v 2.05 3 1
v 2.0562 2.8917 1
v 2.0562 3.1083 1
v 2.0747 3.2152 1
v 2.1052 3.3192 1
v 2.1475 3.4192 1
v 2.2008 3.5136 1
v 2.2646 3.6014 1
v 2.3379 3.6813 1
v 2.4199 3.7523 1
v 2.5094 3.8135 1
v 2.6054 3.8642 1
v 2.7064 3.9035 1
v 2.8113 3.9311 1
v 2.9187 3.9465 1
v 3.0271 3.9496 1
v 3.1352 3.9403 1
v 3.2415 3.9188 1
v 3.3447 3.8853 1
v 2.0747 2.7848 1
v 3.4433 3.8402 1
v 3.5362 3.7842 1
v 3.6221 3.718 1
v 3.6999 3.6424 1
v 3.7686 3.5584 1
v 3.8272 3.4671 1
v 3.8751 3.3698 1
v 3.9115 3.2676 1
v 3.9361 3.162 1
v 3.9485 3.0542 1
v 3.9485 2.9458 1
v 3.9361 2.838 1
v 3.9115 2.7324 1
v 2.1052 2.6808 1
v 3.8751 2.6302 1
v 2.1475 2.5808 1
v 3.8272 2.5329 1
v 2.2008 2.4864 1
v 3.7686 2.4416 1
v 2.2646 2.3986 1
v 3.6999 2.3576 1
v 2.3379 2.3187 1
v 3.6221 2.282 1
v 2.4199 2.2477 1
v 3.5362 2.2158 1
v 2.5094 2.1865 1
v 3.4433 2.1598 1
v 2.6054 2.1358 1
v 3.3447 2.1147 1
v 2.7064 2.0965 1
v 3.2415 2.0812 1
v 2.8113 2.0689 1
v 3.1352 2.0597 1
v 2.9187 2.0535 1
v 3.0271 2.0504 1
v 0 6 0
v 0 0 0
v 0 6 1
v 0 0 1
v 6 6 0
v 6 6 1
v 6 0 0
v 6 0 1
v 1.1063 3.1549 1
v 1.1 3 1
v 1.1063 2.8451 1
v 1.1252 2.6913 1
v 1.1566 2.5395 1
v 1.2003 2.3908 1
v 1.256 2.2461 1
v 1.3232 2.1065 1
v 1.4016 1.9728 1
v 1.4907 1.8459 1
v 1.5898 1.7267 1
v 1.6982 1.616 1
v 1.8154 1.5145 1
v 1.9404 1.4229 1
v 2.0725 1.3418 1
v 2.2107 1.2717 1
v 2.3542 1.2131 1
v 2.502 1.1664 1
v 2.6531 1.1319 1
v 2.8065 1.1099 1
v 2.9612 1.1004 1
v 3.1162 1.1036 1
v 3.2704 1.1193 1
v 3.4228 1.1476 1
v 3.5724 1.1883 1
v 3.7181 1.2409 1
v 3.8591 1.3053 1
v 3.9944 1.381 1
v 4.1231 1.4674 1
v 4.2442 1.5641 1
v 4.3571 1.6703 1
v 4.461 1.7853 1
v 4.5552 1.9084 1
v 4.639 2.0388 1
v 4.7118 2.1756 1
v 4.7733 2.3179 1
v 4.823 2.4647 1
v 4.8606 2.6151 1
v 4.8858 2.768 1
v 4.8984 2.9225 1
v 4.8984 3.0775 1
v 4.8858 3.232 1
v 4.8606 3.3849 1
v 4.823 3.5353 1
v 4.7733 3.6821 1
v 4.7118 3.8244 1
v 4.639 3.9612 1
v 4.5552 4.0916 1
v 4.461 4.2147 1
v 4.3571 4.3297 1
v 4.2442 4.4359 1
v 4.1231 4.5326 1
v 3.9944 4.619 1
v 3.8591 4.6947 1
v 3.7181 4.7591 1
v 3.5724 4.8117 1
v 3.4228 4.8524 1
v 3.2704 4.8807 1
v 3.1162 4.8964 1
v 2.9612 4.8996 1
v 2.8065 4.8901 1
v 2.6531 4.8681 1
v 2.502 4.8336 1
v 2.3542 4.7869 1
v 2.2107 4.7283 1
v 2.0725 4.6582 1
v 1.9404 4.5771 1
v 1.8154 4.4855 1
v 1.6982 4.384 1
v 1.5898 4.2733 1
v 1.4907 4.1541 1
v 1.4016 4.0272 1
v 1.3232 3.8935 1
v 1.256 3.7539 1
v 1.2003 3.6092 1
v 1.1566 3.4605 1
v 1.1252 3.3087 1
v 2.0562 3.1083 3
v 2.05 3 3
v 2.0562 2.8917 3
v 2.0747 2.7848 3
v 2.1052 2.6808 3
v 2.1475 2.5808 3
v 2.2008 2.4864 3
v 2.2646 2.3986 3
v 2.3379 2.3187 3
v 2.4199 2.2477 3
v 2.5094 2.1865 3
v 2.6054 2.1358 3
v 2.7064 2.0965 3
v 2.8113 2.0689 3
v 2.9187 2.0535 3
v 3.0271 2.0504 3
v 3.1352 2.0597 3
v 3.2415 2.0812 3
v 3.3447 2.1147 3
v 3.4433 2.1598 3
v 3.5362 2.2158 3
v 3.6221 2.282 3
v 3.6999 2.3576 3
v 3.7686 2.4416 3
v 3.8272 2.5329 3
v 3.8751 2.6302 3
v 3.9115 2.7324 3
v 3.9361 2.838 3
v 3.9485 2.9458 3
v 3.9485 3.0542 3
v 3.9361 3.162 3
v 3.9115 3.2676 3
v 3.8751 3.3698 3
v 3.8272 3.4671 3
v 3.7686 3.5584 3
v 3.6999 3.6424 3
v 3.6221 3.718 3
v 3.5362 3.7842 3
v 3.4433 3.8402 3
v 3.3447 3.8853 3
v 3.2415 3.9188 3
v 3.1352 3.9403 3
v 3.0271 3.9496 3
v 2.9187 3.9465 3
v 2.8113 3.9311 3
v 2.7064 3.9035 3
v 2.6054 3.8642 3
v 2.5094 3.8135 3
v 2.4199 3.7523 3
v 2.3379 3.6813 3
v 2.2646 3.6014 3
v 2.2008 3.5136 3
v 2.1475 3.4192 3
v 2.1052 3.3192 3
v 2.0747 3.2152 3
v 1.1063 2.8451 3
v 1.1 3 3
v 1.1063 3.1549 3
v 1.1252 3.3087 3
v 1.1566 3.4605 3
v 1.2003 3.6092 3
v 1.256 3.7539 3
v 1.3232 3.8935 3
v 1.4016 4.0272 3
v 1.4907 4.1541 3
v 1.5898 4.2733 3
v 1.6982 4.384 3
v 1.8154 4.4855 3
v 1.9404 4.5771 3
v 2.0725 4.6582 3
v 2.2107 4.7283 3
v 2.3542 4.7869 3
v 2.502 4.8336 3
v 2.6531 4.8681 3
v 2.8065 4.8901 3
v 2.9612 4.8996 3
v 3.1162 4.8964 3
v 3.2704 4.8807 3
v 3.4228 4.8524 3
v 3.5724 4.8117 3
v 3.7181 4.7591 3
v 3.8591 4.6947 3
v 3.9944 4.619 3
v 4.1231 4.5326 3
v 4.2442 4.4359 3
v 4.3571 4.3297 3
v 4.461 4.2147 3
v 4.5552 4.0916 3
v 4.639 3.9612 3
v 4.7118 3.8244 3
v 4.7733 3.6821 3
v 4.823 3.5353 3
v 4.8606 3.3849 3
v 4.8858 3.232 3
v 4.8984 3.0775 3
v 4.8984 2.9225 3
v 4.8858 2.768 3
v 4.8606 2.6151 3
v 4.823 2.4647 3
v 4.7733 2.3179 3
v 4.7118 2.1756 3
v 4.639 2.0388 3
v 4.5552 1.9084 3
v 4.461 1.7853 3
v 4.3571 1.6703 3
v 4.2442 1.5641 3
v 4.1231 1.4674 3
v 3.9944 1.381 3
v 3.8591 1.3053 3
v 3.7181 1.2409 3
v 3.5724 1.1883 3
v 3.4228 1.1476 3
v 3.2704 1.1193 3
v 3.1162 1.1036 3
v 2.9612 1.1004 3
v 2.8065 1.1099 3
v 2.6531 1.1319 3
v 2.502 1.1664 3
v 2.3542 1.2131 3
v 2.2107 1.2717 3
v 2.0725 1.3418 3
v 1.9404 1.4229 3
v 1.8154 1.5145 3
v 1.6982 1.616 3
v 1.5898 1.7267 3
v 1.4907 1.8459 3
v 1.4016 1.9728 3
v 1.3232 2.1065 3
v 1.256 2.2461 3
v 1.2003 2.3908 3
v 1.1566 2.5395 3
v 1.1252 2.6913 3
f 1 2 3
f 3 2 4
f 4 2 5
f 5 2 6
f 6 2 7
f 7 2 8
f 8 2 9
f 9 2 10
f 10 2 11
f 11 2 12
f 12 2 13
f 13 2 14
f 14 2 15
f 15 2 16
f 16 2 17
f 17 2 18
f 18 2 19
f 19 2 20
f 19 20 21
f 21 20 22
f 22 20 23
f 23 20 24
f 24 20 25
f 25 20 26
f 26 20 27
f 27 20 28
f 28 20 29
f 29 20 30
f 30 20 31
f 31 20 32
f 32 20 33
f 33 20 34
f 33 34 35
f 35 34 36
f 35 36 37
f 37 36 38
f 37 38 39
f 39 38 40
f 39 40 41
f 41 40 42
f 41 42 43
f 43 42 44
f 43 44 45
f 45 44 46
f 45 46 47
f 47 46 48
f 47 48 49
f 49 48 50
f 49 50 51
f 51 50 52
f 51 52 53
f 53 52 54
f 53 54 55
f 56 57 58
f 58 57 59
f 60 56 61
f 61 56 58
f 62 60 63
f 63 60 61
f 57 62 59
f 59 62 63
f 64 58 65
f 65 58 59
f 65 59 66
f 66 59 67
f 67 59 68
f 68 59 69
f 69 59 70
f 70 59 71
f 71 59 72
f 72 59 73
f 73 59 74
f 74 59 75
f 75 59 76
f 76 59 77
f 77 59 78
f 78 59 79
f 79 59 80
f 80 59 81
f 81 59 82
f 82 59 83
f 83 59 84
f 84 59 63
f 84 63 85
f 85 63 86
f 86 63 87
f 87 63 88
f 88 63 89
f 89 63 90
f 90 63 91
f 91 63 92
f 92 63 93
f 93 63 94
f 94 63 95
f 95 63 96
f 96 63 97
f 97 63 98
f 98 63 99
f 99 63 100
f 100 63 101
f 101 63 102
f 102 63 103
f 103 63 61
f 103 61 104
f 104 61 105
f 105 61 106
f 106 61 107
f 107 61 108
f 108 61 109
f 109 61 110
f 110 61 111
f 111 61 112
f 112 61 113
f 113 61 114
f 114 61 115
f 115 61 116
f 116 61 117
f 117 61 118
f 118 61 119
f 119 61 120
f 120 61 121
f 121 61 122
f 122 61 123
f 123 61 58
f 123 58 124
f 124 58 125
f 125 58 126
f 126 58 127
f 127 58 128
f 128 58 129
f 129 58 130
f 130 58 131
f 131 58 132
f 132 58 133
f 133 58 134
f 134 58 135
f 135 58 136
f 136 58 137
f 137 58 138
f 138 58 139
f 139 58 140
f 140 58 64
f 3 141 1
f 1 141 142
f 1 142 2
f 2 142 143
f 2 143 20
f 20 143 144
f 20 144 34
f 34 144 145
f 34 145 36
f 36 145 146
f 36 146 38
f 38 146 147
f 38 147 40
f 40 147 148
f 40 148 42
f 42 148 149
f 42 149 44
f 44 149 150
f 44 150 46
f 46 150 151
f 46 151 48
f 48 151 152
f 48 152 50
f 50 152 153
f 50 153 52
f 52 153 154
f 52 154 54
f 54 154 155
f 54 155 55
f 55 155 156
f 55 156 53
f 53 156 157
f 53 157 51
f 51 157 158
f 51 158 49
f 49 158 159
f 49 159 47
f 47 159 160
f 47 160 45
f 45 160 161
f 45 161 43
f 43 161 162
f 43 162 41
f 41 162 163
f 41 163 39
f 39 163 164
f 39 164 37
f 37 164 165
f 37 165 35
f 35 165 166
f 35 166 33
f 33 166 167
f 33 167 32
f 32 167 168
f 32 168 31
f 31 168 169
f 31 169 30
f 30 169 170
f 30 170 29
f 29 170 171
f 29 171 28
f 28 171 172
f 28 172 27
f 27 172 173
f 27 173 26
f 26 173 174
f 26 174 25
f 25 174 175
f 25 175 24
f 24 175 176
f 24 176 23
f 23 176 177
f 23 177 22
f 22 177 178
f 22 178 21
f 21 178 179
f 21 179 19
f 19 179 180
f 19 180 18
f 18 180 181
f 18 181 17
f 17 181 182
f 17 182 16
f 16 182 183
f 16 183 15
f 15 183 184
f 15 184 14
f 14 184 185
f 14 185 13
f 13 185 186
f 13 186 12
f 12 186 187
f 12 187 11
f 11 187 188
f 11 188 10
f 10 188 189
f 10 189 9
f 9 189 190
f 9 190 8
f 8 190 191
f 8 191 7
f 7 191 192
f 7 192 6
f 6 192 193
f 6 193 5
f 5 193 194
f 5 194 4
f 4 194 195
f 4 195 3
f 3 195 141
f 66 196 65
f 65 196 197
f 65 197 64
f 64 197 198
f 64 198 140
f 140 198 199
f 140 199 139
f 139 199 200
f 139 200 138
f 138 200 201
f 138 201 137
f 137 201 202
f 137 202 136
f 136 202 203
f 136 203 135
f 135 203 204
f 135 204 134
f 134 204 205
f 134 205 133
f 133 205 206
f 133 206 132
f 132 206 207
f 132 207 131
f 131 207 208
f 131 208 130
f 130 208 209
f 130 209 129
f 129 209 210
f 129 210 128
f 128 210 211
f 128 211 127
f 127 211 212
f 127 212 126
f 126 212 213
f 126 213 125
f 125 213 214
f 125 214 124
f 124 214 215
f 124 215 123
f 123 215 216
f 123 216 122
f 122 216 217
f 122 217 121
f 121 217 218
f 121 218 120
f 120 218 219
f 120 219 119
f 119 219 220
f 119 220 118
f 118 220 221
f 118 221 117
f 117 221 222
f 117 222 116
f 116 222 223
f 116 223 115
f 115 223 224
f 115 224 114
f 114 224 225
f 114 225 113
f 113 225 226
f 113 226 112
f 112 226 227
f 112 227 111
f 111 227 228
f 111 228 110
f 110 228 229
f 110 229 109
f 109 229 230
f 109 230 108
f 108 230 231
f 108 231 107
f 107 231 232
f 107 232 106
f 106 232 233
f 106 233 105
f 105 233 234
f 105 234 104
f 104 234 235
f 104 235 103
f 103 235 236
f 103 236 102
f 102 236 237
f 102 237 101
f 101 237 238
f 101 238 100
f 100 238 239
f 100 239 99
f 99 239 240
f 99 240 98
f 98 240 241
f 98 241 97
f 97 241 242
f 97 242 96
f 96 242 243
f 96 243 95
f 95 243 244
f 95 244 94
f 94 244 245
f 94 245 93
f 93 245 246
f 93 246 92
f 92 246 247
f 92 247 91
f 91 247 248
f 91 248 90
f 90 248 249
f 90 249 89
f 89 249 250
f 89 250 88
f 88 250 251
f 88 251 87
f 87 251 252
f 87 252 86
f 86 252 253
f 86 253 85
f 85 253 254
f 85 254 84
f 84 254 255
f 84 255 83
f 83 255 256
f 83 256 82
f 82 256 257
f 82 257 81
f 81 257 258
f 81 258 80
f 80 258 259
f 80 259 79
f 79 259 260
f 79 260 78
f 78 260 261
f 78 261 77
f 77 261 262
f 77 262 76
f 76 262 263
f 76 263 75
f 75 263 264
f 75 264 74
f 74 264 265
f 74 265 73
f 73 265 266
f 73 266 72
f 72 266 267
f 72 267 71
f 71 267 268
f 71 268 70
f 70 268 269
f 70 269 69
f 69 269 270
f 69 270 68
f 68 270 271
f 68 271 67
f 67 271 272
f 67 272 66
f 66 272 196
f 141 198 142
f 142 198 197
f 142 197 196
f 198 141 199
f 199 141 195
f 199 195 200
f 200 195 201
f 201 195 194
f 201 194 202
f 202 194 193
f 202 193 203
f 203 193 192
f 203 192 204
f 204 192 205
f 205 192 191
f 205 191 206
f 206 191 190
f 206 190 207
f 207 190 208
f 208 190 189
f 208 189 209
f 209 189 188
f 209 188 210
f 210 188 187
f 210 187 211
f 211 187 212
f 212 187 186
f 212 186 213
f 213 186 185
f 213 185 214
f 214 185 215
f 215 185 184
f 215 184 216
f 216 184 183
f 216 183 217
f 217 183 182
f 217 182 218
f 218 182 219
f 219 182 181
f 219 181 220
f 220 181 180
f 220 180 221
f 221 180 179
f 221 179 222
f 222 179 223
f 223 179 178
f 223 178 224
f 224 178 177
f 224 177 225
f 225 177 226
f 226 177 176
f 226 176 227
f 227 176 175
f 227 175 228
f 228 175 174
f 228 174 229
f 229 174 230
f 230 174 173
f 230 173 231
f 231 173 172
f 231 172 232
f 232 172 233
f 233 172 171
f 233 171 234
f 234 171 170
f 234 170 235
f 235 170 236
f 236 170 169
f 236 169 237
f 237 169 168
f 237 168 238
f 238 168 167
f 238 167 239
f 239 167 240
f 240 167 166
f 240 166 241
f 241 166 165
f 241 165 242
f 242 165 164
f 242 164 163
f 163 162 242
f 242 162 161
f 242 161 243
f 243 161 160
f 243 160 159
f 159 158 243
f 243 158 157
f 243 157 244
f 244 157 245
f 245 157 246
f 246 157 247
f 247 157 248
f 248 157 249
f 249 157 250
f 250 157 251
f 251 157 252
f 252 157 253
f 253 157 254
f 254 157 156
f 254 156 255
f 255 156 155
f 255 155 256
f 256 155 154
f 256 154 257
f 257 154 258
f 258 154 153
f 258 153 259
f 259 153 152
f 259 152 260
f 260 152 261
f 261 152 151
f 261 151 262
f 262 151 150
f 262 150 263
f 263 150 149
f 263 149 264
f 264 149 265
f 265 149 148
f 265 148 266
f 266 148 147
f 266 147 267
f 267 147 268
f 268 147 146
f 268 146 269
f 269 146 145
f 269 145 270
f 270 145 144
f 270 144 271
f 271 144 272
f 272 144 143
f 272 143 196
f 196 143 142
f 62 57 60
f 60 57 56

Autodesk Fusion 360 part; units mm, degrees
sketch "Sketch2" plane through (0, 0, 0) normal (0, 0, 1) x (1, 0, 0)
  line L0 (0, 0) -> (6, 0)
  line L1 (0, 0) -> (0, 6)
  line L2 (0, 6) -> (6, 6)
  line L3 (6, 6) -> (6, 0)
  circle A0 centre (3, 3) radius 1.9
  circle A1 centre (3, 3) radius 0.95
  dimension "d11" = 6
  dimension "d12" = 6
  dimension "d13" = 6
  dimension "d15" = 3.8
  dimension "d16" = 1.9
extrude "Extrude4" add sketch "Sketch2" along normal blind 3 contours A0
extrude "Extrude5" add sketch "Sketch2" along normal blind 1 contours L0 L1 L2 L3
extrude "Extrude6" add sketch "Sketch2" along normal blind 1 contours A1
